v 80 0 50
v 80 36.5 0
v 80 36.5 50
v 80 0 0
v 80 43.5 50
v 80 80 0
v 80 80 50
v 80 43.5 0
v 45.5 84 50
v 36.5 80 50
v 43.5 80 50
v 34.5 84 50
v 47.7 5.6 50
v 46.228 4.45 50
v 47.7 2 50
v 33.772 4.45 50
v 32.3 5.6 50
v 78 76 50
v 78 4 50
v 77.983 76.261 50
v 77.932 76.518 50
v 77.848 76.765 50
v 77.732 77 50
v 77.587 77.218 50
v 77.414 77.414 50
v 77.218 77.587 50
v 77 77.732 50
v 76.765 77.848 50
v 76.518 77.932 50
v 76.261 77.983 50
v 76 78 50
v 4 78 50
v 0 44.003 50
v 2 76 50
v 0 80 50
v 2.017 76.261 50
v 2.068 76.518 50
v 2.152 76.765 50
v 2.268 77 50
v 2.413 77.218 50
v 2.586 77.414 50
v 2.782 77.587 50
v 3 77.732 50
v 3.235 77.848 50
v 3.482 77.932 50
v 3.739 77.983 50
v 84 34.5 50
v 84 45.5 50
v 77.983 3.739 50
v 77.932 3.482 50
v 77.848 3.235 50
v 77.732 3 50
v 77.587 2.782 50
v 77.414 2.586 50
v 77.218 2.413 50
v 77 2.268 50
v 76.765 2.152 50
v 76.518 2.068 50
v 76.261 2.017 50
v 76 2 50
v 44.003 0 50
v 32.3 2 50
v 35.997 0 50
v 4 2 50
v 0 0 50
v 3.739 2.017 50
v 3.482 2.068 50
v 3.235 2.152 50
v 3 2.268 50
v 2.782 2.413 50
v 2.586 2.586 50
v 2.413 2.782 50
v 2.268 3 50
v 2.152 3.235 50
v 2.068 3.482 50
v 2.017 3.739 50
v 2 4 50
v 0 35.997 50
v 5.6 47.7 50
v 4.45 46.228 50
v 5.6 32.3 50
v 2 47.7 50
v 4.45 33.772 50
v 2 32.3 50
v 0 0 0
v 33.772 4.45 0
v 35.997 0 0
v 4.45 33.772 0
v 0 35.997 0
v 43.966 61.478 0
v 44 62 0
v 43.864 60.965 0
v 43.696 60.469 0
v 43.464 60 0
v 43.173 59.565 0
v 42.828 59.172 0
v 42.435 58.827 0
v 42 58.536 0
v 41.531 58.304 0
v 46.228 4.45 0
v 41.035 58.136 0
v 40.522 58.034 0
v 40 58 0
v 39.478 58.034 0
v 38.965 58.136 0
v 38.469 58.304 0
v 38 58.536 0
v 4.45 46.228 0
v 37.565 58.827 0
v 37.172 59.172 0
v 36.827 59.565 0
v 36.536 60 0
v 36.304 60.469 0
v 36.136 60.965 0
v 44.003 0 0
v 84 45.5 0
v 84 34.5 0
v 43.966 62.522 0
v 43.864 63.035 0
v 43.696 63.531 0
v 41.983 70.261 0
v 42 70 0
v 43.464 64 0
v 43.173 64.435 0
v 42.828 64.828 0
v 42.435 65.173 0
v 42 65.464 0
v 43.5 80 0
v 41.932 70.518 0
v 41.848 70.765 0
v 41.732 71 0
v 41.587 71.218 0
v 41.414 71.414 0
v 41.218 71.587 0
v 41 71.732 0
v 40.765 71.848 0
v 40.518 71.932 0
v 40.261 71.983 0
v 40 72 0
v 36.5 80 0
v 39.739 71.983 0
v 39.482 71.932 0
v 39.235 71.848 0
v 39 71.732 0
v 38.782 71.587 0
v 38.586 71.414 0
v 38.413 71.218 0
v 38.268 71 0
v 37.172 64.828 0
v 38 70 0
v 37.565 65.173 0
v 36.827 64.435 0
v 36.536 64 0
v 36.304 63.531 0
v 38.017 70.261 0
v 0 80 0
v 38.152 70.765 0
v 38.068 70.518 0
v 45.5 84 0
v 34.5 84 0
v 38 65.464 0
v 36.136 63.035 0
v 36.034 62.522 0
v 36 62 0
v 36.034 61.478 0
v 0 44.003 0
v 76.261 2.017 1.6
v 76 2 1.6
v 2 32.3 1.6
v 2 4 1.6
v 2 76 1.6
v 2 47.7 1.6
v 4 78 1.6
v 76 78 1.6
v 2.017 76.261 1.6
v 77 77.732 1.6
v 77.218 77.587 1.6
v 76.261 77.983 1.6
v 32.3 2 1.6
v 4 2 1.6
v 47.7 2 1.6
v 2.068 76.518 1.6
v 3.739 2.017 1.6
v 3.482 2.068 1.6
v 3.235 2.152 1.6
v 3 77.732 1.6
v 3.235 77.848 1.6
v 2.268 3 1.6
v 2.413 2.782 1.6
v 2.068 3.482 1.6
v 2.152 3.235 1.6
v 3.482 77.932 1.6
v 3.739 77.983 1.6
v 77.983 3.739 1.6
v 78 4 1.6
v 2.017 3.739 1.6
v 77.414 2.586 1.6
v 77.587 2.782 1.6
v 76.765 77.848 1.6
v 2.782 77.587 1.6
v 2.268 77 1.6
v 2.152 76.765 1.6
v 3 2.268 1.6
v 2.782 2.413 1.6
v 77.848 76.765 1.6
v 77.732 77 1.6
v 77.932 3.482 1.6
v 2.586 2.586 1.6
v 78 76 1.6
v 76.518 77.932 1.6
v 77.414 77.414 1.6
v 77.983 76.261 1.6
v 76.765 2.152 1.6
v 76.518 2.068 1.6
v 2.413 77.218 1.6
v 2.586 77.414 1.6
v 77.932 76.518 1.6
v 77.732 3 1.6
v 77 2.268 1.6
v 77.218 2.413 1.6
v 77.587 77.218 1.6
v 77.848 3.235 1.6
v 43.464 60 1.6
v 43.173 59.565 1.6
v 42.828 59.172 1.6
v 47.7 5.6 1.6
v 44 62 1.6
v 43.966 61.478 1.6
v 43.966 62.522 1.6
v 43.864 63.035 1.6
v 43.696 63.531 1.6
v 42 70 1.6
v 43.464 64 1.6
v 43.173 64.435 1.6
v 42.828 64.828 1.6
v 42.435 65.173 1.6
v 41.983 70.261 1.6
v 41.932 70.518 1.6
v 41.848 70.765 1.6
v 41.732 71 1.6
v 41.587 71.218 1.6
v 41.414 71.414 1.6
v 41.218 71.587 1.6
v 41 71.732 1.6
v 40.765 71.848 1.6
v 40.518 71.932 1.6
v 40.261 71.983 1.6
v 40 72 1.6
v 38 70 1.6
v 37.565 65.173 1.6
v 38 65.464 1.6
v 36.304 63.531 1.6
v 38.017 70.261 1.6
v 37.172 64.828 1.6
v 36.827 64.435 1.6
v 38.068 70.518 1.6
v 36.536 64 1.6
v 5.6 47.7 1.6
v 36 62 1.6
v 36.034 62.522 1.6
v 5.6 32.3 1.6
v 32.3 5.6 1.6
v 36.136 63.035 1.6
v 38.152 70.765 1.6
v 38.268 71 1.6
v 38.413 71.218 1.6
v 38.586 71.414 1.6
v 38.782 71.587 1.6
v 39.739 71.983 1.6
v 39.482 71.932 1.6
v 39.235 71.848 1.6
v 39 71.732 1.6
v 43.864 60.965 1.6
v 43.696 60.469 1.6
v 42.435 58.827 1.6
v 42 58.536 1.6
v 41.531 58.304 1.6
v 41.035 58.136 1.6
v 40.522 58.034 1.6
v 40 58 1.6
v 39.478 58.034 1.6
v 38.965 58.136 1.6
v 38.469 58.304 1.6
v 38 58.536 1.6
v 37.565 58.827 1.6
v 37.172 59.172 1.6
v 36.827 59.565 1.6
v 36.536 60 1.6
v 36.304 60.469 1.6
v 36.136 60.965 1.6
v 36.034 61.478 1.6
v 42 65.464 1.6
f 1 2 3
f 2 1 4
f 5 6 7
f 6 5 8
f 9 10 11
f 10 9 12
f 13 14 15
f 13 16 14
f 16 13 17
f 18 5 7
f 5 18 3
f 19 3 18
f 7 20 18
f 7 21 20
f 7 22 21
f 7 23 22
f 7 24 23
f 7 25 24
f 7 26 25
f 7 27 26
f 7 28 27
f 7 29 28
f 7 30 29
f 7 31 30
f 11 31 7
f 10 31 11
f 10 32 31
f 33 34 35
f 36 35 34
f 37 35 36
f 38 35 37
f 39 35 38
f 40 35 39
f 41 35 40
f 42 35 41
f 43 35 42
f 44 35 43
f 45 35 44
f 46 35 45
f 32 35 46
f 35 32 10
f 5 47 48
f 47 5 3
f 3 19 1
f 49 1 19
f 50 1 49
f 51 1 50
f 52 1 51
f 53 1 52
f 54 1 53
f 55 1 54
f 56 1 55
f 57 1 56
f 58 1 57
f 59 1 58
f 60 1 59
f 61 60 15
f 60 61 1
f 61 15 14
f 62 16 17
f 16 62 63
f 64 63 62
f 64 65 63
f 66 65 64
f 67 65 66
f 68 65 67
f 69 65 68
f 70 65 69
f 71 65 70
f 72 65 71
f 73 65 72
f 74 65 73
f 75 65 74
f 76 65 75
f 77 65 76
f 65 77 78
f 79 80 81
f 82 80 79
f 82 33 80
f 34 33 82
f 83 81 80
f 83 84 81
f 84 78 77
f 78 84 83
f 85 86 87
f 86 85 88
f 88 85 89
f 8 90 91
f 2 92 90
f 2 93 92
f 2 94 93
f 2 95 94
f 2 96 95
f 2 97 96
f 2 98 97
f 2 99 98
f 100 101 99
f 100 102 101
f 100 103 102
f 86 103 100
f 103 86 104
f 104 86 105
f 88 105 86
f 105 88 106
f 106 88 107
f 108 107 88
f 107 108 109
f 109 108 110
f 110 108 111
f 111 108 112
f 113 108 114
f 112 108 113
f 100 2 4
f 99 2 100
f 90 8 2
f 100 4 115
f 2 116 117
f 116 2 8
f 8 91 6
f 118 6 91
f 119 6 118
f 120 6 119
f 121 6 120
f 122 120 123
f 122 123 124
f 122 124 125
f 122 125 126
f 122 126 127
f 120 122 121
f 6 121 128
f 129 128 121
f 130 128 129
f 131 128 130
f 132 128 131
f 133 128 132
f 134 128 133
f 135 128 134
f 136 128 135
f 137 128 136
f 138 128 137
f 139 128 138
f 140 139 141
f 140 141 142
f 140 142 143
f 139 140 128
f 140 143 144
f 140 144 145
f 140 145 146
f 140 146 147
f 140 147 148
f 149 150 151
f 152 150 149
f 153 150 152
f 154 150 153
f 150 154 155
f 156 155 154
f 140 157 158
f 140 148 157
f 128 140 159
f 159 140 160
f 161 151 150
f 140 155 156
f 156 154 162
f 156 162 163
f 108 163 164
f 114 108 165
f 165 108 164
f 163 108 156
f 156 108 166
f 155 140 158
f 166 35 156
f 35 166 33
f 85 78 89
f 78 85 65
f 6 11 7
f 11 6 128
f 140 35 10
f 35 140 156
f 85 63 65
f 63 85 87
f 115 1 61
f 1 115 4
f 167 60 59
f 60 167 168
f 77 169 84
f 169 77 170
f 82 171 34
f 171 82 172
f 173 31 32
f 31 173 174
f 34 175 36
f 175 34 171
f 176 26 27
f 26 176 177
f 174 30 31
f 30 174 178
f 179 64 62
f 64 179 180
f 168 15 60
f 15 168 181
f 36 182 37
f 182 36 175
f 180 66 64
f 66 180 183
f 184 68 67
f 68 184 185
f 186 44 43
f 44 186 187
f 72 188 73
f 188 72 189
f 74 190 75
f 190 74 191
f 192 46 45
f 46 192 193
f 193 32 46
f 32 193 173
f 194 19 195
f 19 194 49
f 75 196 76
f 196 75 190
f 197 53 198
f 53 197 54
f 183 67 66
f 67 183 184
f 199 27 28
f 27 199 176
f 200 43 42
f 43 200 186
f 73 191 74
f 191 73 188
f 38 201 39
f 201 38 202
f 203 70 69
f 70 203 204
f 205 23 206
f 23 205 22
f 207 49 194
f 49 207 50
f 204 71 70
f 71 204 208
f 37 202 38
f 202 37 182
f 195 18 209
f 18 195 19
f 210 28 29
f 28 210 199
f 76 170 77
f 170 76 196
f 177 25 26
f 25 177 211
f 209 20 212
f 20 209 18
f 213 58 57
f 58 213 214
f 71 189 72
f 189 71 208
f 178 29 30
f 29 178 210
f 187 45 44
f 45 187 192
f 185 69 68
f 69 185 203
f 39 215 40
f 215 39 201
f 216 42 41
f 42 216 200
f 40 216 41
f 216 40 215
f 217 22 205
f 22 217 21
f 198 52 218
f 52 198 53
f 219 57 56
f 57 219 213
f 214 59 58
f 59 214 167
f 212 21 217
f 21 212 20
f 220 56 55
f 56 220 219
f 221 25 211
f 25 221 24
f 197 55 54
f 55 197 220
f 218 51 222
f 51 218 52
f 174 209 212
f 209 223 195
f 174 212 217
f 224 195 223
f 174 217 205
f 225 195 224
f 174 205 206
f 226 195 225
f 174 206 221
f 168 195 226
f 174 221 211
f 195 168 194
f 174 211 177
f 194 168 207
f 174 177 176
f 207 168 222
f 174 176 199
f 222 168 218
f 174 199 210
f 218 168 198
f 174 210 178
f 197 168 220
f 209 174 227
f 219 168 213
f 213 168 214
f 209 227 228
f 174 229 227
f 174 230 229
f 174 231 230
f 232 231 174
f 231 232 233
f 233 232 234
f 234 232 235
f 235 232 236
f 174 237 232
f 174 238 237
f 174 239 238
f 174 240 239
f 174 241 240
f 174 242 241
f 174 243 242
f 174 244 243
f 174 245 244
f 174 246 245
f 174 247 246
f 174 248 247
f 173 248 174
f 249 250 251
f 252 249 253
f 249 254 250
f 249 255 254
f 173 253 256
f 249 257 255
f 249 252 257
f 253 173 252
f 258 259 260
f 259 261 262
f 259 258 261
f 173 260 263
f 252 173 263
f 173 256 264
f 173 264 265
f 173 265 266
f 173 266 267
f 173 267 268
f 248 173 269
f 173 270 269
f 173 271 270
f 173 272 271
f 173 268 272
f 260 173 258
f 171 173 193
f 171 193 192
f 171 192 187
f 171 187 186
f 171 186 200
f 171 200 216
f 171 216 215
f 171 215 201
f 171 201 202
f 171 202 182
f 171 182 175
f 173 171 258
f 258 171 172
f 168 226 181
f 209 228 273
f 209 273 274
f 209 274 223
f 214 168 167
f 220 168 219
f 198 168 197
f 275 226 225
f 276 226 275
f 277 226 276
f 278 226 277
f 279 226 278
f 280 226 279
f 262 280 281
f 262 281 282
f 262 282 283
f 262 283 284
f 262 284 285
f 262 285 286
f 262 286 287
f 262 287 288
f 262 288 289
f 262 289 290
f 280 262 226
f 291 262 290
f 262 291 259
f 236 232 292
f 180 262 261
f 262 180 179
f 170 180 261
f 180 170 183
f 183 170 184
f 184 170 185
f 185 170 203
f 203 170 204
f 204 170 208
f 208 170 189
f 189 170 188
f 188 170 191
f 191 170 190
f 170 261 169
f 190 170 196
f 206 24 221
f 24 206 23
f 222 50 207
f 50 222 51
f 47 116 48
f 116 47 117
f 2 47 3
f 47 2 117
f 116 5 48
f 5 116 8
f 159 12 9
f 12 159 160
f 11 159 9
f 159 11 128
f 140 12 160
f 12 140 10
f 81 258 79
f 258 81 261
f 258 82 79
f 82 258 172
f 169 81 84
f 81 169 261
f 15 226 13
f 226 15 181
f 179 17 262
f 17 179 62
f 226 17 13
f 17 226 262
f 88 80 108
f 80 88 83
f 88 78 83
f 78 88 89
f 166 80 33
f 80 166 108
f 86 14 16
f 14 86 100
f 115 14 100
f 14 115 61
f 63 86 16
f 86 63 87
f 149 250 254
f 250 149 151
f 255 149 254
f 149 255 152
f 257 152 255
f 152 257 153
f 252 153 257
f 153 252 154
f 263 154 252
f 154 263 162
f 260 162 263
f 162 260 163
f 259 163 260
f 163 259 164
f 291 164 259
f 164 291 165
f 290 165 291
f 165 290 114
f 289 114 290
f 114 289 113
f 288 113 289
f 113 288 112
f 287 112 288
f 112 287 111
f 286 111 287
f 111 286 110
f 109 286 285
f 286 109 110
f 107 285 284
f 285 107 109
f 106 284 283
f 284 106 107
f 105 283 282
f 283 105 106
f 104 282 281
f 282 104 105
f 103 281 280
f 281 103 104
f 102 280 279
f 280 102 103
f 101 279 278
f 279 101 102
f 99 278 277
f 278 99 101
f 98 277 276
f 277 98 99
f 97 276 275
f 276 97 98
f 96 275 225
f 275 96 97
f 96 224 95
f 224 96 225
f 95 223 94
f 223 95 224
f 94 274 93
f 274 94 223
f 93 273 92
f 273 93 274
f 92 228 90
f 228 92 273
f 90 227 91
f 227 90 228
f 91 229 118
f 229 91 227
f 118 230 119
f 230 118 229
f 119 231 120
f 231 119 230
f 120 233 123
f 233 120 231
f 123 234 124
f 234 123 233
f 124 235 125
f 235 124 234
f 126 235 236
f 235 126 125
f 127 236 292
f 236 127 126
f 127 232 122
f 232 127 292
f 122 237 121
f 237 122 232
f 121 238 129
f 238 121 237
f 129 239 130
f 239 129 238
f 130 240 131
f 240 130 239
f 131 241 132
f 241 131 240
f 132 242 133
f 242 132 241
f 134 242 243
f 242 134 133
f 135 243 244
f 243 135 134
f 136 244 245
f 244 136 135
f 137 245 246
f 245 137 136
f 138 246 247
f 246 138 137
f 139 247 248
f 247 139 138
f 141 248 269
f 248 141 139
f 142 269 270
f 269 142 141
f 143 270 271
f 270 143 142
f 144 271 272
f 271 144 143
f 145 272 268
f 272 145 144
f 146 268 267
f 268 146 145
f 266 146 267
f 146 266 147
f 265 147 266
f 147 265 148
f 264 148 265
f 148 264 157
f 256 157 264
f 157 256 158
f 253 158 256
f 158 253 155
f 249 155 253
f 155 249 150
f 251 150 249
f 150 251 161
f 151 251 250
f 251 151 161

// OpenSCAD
/* ============================================================
   MODULAR INTERLOCKING DRAWER BIN
   ------------------------------------------------------------
   One bin that links to identical copies of itself via dovetail
   connectors: a MALE rib on the +X (right) and +Y (back) faces,
   a FEMALE groove on the -X (left) and -Y (front) faces.

   Two copies join by sliding one DOWN into the other from the
   top. Once seated they cannot be pulled apart sideways, only
   lifted back out -- so they stay put in a drawer but you can
   still remove one when you want it.

   Print several, lay them in a grid, slide together. For a
   clean outer border, turn OFF the connectors that face the
   open edge (see toggles) and print a few "edge" / "corner"
   variants.

   Units: millimeters.  Render F6, export STL F7.
   ============================================================ */

/* ---------- [ MODULE SIZE ] ---------- */
unit_width  = 80;   // X  (left-to-right)
unit_depth  = 80;   // Y  (front-to-back)
unit_height = 50;   // Z

/* ---------- [ STRUCTURE ] ---------- */
wall            = 2.0;
floor_thickness = 1.6;
pocket_radius   = 2;   // inside corner rounding of the bin cavity

/* ---------- [ DOVETAIL CONNECTOR ] ---------- */
dt_neck   = 7;    // width at the narrow neck
dt_flare  = 2;    // extra half-width at the wide head (the locking bit)
dt_depth  = 4;    // how far the dovetail protrudes / grooves in
clearance = 0.20; // boss/rail sizing gap (leave this — your drawer rail is tuned to it)
slot_clearance = 0.45; // dovetail SLOT looseness per side (raise if rails won't seat, lower if rattly)

/* ---------- [ WHICH CONNECTORS ARE PRESENT ] ----------
   A full interior tile has all four. For edge pieces, switch off
   the side(s) that face the open border so you get a clean wall. */
tab_right  = true;  // male  on +X  (right)
tab_back   = true;  // male  on +Y  (back)
slot_left  = true;  // female on -X  (left)
slot_front = true;  // female on -Y  (front)

/* ---------- [ WALL-MOUNT KEYHOLE ] ----------
   Cut a keyhole hanger into the closed floor (which becomes the BACK
   when the cabinet stands on end). Circle at the bottom to drop over
   the screw head, narrow slot above so you slide the bin DOWN to lock. */
mount_keyhole   = true;
screw_head_dia  = 8.0;    // big hole — clears the screw head
screw_shank_dia = 4.0;    // slot width — clears the shank, traps the head
keyhole_travel  = 8.0;    // slide-down distance

$fn = 48;

/* set false when this file is INCLUDED by an assembly preview */
render_single = true;

/* ============================================================
   --- geometry below ---
   ============================================================ */

boss_back = 1.6;  // material left behind a groove so it can't break through

module rrect2d(w, d, r){
  if (r <= 0) square([w, d]);
  else translate([r, r]) offset(r=r) square([w-2*r, d-2*r]);
}

// Dovetail cross-section: narrow neck at x=0, wide head at x=depth.
module dovetail_profile(neck, flare, depth, grow=0){
  pts = [[0,-neck/2],[depth,-(neck/2+flare)],[depth,(neck/2+flare)],[0,neck/2]];
  if (grow > 0) offset(delta=grow) polygon(pts);
  else polygon(pts);
}

module hollow_box(){
  difference(){
    cube([unit_width, unit_depth, unit_height]);
    translate([wall, wall, floor_thickness])
      linear_extrude(height = unit_height)   // cuts through the open top
        rrect2d(unit_width - 2*wall, unit_depth - 2*wall, pocket_radius);
  }
}

/* ---- male ribs ---- */
module male_x(){    // protrudes +X, centered on the depth
  translate([unit_width, unit_depth/2, 0])
    linear_extrude(height = unit_height)
      dovetail_profile(dt_neck, dt_flare, dt_depth);
}
module male_y(){    // protrudes +Y, centered on the width
  translate([unit_width/2, unit_depth, 0])
    rotate([0,0,90])
      linear_extrude(height = unit_height)
        dovetail_profile(dt_neck, dt_flare, dt_depth);
}

/* ---- female grooves (cut) ---- */
module female_x(){
  translate([0, unit_depth/2, -1])
    linear_extrude(height = unit_height + 2)
      dovetail_profile(dt_neck, dt_flare, dt_depth, grow=slot_clearance);
}
module female_y(){
  translate([unit_width/2, 0, -1])
    rotate([0,0,90])
      linear_extrude(height = unit_height + 2)
        dovetail_profile(dt_neck, dt_flare, dt_depth, grow=slot_clearance);
}

/* ---- backing bosses so grooves don't open into the bin ---- */
module boss_x(){
  bw = dt_neck + 2*dt_flare + 2*wall + 2*clearance;
  translate([0, unit_depth/2 - bw/2, 0])
    cube([dt_depth + boss_back, bw, unit_height]);
}
module boss_y(){
  bw = dt_neck + 2*dt_flare + 2*wall + 2*clearance;
  translate([unit_width/2 - bw/2, 0, 0])
    cube([bw, dt_depth + boss_back, unit_height]);
}

// keyhole hanger cut through the floor; sits centered, in the upper third
module keyhole_cut(){
  cx = unit_width/2;
  cy = unit_depth - 10 - keyhole_travel;   // screw rests ~10mm from the top edge
  translate([cx, cy, -1])
    linear_extrude(height = floor_thickness + 2){
      circle(d = screw_head_dia);                                          // drop-over hole
      translate([-screw_shank_dia/2, 0]) square([screw_shank_dia, keyhole_travel]); // slot up
      translate([0, keyhole_travel]) circle(d = screw_shank_dia);          // rounded slot top
    }
}

module bin(){
  difference(){
    union(){
      hollow_box();
      if (tab_right)  male_x();
      if (tab_back)   male_y();
      if (slot_left)  boss_x();
      if (slot_front) boss_y();
    }
    if (slot_left)  female_x();
    if (slot_front) female_y();
    if (mount_keyhole) keyhole_cut();
  }
}

if (render_single) bin();
